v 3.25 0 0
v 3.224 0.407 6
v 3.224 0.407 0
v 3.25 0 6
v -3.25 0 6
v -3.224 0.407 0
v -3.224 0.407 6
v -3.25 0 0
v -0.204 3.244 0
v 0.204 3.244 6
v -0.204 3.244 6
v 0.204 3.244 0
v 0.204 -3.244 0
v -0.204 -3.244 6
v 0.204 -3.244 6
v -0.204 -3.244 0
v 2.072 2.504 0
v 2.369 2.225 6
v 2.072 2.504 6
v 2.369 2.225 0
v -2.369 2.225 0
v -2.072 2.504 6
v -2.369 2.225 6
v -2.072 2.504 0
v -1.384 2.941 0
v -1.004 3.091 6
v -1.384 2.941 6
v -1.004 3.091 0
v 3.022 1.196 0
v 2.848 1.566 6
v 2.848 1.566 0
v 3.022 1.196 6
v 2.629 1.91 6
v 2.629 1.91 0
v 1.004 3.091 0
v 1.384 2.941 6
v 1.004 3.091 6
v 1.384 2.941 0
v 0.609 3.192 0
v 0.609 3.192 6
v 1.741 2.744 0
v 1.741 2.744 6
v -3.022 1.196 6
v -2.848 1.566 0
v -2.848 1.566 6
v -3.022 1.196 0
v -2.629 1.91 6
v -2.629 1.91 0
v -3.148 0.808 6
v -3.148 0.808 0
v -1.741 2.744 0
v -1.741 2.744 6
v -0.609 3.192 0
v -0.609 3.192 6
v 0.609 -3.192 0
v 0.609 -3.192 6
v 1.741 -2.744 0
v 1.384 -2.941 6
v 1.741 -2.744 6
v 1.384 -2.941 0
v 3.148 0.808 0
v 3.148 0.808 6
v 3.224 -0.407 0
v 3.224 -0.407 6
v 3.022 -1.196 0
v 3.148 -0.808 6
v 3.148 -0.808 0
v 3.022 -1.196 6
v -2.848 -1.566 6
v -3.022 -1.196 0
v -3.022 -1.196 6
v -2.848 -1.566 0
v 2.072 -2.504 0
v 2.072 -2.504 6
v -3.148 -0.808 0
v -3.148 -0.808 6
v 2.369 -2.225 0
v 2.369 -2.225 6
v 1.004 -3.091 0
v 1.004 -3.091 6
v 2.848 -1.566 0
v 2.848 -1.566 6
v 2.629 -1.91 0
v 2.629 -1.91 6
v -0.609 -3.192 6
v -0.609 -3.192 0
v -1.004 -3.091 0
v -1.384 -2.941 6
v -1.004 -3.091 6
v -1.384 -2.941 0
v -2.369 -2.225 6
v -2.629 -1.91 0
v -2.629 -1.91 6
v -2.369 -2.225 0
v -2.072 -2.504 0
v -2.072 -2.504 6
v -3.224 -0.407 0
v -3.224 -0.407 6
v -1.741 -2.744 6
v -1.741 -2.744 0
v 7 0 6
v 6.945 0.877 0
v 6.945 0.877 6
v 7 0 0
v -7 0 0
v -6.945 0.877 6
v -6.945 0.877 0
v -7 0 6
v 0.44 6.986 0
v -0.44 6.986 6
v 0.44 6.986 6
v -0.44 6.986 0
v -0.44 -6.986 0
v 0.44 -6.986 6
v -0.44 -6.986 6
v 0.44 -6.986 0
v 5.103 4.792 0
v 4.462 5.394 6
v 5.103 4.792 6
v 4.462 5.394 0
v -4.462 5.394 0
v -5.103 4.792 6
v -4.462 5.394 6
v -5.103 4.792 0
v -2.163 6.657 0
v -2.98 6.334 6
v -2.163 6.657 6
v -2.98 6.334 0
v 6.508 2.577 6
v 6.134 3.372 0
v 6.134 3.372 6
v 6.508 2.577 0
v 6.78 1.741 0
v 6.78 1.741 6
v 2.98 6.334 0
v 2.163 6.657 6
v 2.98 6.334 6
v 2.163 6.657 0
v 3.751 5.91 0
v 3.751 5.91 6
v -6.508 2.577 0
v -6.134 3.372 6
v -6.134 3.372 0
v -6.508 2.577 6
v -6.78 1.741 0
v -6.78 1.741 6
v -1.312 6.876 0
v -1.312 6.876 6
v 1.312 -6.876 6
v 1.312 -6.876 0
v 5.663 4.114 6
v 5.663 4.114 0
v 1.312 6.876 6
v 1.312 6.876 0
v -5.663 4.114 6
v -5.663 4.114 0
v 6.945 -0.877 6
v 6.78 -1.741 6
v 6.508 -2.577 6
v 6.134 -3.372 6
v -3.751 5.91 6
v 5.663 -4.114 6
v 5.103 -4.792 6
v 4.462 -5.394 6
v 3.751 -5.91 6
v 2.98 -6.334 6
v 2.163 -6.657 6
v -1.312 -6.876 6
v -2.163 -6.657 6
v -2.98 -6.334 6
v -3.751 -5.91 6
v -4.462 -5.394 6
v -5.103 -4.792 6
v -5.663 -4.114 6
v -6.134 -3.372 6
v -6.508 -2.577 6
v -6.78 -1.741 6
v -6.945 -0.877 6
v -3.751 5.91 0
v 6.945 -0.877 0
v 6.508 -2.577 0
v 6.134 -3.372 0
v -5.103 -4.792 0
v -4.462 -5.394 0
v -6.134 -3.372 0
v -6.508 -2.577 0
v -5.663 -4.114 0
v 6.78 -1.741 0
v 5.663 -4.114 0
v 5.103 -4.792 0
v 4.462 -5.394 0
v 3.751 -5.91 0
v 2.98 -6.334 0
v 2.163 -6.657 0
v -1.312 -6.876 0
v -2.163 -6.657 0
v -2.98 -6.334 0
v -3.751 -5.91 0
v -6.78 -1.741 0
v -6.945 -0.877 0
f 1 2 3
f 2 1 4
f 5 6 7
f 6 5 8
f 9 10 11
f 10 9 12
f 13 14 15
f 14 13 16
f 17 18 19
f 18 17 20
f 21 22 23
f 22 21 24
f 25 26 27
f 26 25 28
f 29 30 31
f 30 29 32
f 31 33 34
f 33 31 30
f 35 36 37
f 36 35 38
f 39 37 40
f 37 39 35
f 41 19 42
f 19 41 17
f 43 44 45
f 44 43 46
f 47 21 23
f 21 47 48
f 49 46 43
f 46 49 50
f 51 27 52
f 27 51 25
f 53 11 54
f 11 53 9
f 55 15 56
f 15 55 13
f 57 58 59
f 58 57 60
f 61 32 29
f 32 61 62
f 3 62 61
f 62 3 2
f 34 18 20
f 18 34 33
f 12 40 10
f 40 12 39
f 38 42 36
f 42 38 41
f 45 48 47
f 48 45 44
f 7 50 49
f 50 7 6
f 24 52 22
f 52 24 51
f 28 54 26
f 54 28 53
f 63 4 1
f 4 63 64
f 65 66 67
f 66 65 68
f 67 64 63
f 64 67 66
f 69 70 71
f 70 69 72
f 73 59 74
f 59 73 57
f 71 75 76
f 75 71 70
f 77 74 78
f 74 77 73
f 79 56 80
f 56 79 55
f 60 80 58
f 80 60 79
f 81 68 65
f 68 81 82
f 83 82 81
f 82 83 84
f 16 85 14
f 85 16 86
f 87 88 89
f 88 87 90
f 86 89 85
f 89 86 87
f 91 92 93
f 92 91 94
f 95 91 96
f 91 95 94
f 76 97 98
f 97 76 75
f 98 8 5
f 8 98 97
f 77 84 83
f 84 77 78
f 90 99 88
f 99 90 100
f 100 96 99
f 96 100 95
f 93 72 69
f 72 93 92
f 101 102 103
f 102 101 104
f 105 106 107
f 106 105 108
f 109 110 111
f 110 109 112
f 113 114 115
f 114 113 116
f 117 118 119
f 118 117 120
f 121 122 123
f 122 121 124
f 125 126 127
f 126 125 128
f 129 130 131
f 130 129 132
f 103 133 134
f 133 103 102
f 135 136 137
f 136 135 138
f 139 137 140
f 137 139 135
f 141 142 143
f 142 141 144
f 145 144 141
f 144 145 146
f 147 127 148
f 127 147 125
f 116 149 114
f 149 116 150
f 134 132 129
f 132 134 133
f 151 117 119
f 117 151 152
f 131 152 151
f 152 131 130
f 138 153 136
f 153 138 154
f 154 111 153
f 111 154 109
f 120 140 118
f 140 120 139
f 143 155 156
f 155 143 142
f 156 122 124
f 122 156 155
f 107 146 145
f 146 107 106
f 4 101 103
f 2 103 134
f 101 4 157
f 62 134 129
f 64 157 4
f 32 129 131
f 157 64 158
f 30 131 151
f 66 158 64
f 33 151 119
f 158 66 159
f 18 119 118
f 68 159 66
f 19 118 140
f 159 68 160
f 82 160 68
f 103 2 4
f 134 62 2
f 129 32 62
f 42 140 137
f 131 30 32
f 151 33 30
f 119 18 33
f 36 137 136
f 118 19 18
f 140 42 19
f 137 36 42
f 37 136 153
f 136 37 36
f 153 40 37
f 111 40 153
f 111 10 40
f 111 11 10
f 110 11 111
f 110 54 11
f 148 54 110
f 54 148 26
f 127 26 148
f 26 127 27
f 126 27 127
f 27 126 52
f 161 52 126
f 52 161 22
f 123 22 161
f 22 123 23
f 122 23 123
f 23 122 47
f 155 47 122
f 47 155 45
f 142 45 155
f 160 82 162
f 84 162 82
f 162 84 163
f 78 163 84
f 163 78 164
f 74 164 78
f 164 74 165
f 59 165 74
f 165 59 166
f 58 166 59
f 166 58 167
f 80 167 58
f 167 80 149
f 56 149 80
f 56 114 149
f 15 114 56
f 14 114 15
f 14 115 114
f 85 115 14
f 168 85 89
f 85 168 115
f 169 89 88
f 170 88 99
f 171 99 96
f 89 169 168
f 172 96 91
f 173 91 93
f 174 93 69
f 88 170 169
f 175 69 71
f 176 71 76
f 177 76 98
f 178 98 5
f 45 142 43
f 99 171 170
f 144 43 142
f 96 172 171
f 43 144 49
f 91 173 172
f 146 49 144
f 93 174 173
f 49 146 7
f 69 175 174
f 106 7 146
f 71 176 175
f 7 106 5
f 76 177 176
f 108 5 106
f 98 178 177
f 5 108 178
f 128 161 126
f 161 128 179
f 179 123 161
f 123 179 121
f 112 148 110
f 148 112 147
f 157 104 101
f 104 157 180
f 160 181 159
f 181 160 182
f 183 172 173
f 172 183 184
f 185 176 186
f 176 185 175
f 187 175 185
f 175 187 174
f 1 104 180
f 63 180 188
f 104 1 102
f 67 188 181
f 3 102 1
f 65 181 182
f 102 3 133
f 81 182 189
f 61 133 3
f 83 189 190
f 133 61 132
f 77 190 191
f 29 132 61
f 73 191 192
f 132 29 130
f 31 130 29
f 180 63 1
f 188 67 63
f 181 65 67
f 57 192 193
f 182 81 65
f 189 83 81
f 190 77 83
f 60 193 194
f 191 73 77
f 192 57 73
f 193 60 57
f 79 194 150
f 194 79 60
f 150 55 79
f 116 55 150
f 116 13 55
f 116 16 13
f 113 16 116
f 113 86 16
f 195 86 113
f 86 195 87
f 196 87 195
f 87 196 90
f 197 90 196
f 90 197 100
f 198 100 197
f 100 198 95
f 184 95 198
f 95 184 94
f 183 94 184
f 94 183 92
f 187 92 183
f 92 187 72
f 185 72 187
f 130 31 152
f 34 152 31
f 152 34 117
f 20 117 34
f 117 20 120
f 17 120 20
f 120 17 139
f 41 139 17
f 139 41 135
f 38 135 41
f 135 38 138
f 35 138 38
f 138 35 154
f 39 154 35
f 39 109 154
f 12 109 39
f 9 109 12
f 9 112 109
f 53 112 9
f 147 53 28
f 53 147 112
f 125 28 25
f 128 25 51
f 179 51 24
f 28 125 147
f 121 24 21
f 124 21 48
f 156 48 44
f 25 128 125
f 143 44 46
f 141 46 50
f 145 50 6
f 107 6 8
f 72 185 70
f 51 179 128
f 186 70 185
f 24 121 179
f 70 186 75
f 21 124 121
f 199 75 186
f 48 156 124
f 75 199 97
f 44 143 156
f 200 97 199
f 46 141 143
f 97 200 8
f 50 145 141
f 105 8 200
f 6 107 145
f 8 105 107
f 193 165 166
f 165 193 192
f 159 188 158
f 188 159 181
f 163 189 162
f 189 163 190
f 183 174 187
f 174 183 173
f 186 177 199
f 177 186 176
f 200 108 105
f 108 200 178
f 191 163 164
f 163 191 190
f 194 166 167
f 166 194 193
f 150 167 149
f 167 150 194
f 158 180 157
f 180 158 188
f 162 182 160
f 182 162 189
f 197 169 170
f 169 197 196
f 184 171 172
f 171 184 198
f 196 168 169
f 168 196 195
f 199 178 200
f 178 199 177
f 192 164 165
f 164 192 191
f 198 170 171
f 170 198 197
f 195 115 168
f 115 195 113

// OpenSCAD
$fn = 50;


difference() {
	union() {
		cylinder(h = 6, r = 7.0000000000);
	}
	union() {
		#translate(v = [0.0000000000, 0.0000000000, -100.0000000000]) {
			cylinder(h = 200, r = 3.2500000000);
		}
		#translate(v = [0.0000000000, 0.0000000000, -100.0000000000]) {
			cylinder(h = 200, r = 3.2500000000);
		}
		#translate(v = [0.0000000000, 0.0000000000, -100.0000000000]) {
			cylinder(h = 200, r = 3.2500000000);
		}
		#translate(v = [0.0000000000, 0.0000000000, -100.0000000000]) {
			cylinder(h = 200, r = 3.2500000000);
		}
		#cylinder(h = 6, r = 2.5000000000);
	}
}
